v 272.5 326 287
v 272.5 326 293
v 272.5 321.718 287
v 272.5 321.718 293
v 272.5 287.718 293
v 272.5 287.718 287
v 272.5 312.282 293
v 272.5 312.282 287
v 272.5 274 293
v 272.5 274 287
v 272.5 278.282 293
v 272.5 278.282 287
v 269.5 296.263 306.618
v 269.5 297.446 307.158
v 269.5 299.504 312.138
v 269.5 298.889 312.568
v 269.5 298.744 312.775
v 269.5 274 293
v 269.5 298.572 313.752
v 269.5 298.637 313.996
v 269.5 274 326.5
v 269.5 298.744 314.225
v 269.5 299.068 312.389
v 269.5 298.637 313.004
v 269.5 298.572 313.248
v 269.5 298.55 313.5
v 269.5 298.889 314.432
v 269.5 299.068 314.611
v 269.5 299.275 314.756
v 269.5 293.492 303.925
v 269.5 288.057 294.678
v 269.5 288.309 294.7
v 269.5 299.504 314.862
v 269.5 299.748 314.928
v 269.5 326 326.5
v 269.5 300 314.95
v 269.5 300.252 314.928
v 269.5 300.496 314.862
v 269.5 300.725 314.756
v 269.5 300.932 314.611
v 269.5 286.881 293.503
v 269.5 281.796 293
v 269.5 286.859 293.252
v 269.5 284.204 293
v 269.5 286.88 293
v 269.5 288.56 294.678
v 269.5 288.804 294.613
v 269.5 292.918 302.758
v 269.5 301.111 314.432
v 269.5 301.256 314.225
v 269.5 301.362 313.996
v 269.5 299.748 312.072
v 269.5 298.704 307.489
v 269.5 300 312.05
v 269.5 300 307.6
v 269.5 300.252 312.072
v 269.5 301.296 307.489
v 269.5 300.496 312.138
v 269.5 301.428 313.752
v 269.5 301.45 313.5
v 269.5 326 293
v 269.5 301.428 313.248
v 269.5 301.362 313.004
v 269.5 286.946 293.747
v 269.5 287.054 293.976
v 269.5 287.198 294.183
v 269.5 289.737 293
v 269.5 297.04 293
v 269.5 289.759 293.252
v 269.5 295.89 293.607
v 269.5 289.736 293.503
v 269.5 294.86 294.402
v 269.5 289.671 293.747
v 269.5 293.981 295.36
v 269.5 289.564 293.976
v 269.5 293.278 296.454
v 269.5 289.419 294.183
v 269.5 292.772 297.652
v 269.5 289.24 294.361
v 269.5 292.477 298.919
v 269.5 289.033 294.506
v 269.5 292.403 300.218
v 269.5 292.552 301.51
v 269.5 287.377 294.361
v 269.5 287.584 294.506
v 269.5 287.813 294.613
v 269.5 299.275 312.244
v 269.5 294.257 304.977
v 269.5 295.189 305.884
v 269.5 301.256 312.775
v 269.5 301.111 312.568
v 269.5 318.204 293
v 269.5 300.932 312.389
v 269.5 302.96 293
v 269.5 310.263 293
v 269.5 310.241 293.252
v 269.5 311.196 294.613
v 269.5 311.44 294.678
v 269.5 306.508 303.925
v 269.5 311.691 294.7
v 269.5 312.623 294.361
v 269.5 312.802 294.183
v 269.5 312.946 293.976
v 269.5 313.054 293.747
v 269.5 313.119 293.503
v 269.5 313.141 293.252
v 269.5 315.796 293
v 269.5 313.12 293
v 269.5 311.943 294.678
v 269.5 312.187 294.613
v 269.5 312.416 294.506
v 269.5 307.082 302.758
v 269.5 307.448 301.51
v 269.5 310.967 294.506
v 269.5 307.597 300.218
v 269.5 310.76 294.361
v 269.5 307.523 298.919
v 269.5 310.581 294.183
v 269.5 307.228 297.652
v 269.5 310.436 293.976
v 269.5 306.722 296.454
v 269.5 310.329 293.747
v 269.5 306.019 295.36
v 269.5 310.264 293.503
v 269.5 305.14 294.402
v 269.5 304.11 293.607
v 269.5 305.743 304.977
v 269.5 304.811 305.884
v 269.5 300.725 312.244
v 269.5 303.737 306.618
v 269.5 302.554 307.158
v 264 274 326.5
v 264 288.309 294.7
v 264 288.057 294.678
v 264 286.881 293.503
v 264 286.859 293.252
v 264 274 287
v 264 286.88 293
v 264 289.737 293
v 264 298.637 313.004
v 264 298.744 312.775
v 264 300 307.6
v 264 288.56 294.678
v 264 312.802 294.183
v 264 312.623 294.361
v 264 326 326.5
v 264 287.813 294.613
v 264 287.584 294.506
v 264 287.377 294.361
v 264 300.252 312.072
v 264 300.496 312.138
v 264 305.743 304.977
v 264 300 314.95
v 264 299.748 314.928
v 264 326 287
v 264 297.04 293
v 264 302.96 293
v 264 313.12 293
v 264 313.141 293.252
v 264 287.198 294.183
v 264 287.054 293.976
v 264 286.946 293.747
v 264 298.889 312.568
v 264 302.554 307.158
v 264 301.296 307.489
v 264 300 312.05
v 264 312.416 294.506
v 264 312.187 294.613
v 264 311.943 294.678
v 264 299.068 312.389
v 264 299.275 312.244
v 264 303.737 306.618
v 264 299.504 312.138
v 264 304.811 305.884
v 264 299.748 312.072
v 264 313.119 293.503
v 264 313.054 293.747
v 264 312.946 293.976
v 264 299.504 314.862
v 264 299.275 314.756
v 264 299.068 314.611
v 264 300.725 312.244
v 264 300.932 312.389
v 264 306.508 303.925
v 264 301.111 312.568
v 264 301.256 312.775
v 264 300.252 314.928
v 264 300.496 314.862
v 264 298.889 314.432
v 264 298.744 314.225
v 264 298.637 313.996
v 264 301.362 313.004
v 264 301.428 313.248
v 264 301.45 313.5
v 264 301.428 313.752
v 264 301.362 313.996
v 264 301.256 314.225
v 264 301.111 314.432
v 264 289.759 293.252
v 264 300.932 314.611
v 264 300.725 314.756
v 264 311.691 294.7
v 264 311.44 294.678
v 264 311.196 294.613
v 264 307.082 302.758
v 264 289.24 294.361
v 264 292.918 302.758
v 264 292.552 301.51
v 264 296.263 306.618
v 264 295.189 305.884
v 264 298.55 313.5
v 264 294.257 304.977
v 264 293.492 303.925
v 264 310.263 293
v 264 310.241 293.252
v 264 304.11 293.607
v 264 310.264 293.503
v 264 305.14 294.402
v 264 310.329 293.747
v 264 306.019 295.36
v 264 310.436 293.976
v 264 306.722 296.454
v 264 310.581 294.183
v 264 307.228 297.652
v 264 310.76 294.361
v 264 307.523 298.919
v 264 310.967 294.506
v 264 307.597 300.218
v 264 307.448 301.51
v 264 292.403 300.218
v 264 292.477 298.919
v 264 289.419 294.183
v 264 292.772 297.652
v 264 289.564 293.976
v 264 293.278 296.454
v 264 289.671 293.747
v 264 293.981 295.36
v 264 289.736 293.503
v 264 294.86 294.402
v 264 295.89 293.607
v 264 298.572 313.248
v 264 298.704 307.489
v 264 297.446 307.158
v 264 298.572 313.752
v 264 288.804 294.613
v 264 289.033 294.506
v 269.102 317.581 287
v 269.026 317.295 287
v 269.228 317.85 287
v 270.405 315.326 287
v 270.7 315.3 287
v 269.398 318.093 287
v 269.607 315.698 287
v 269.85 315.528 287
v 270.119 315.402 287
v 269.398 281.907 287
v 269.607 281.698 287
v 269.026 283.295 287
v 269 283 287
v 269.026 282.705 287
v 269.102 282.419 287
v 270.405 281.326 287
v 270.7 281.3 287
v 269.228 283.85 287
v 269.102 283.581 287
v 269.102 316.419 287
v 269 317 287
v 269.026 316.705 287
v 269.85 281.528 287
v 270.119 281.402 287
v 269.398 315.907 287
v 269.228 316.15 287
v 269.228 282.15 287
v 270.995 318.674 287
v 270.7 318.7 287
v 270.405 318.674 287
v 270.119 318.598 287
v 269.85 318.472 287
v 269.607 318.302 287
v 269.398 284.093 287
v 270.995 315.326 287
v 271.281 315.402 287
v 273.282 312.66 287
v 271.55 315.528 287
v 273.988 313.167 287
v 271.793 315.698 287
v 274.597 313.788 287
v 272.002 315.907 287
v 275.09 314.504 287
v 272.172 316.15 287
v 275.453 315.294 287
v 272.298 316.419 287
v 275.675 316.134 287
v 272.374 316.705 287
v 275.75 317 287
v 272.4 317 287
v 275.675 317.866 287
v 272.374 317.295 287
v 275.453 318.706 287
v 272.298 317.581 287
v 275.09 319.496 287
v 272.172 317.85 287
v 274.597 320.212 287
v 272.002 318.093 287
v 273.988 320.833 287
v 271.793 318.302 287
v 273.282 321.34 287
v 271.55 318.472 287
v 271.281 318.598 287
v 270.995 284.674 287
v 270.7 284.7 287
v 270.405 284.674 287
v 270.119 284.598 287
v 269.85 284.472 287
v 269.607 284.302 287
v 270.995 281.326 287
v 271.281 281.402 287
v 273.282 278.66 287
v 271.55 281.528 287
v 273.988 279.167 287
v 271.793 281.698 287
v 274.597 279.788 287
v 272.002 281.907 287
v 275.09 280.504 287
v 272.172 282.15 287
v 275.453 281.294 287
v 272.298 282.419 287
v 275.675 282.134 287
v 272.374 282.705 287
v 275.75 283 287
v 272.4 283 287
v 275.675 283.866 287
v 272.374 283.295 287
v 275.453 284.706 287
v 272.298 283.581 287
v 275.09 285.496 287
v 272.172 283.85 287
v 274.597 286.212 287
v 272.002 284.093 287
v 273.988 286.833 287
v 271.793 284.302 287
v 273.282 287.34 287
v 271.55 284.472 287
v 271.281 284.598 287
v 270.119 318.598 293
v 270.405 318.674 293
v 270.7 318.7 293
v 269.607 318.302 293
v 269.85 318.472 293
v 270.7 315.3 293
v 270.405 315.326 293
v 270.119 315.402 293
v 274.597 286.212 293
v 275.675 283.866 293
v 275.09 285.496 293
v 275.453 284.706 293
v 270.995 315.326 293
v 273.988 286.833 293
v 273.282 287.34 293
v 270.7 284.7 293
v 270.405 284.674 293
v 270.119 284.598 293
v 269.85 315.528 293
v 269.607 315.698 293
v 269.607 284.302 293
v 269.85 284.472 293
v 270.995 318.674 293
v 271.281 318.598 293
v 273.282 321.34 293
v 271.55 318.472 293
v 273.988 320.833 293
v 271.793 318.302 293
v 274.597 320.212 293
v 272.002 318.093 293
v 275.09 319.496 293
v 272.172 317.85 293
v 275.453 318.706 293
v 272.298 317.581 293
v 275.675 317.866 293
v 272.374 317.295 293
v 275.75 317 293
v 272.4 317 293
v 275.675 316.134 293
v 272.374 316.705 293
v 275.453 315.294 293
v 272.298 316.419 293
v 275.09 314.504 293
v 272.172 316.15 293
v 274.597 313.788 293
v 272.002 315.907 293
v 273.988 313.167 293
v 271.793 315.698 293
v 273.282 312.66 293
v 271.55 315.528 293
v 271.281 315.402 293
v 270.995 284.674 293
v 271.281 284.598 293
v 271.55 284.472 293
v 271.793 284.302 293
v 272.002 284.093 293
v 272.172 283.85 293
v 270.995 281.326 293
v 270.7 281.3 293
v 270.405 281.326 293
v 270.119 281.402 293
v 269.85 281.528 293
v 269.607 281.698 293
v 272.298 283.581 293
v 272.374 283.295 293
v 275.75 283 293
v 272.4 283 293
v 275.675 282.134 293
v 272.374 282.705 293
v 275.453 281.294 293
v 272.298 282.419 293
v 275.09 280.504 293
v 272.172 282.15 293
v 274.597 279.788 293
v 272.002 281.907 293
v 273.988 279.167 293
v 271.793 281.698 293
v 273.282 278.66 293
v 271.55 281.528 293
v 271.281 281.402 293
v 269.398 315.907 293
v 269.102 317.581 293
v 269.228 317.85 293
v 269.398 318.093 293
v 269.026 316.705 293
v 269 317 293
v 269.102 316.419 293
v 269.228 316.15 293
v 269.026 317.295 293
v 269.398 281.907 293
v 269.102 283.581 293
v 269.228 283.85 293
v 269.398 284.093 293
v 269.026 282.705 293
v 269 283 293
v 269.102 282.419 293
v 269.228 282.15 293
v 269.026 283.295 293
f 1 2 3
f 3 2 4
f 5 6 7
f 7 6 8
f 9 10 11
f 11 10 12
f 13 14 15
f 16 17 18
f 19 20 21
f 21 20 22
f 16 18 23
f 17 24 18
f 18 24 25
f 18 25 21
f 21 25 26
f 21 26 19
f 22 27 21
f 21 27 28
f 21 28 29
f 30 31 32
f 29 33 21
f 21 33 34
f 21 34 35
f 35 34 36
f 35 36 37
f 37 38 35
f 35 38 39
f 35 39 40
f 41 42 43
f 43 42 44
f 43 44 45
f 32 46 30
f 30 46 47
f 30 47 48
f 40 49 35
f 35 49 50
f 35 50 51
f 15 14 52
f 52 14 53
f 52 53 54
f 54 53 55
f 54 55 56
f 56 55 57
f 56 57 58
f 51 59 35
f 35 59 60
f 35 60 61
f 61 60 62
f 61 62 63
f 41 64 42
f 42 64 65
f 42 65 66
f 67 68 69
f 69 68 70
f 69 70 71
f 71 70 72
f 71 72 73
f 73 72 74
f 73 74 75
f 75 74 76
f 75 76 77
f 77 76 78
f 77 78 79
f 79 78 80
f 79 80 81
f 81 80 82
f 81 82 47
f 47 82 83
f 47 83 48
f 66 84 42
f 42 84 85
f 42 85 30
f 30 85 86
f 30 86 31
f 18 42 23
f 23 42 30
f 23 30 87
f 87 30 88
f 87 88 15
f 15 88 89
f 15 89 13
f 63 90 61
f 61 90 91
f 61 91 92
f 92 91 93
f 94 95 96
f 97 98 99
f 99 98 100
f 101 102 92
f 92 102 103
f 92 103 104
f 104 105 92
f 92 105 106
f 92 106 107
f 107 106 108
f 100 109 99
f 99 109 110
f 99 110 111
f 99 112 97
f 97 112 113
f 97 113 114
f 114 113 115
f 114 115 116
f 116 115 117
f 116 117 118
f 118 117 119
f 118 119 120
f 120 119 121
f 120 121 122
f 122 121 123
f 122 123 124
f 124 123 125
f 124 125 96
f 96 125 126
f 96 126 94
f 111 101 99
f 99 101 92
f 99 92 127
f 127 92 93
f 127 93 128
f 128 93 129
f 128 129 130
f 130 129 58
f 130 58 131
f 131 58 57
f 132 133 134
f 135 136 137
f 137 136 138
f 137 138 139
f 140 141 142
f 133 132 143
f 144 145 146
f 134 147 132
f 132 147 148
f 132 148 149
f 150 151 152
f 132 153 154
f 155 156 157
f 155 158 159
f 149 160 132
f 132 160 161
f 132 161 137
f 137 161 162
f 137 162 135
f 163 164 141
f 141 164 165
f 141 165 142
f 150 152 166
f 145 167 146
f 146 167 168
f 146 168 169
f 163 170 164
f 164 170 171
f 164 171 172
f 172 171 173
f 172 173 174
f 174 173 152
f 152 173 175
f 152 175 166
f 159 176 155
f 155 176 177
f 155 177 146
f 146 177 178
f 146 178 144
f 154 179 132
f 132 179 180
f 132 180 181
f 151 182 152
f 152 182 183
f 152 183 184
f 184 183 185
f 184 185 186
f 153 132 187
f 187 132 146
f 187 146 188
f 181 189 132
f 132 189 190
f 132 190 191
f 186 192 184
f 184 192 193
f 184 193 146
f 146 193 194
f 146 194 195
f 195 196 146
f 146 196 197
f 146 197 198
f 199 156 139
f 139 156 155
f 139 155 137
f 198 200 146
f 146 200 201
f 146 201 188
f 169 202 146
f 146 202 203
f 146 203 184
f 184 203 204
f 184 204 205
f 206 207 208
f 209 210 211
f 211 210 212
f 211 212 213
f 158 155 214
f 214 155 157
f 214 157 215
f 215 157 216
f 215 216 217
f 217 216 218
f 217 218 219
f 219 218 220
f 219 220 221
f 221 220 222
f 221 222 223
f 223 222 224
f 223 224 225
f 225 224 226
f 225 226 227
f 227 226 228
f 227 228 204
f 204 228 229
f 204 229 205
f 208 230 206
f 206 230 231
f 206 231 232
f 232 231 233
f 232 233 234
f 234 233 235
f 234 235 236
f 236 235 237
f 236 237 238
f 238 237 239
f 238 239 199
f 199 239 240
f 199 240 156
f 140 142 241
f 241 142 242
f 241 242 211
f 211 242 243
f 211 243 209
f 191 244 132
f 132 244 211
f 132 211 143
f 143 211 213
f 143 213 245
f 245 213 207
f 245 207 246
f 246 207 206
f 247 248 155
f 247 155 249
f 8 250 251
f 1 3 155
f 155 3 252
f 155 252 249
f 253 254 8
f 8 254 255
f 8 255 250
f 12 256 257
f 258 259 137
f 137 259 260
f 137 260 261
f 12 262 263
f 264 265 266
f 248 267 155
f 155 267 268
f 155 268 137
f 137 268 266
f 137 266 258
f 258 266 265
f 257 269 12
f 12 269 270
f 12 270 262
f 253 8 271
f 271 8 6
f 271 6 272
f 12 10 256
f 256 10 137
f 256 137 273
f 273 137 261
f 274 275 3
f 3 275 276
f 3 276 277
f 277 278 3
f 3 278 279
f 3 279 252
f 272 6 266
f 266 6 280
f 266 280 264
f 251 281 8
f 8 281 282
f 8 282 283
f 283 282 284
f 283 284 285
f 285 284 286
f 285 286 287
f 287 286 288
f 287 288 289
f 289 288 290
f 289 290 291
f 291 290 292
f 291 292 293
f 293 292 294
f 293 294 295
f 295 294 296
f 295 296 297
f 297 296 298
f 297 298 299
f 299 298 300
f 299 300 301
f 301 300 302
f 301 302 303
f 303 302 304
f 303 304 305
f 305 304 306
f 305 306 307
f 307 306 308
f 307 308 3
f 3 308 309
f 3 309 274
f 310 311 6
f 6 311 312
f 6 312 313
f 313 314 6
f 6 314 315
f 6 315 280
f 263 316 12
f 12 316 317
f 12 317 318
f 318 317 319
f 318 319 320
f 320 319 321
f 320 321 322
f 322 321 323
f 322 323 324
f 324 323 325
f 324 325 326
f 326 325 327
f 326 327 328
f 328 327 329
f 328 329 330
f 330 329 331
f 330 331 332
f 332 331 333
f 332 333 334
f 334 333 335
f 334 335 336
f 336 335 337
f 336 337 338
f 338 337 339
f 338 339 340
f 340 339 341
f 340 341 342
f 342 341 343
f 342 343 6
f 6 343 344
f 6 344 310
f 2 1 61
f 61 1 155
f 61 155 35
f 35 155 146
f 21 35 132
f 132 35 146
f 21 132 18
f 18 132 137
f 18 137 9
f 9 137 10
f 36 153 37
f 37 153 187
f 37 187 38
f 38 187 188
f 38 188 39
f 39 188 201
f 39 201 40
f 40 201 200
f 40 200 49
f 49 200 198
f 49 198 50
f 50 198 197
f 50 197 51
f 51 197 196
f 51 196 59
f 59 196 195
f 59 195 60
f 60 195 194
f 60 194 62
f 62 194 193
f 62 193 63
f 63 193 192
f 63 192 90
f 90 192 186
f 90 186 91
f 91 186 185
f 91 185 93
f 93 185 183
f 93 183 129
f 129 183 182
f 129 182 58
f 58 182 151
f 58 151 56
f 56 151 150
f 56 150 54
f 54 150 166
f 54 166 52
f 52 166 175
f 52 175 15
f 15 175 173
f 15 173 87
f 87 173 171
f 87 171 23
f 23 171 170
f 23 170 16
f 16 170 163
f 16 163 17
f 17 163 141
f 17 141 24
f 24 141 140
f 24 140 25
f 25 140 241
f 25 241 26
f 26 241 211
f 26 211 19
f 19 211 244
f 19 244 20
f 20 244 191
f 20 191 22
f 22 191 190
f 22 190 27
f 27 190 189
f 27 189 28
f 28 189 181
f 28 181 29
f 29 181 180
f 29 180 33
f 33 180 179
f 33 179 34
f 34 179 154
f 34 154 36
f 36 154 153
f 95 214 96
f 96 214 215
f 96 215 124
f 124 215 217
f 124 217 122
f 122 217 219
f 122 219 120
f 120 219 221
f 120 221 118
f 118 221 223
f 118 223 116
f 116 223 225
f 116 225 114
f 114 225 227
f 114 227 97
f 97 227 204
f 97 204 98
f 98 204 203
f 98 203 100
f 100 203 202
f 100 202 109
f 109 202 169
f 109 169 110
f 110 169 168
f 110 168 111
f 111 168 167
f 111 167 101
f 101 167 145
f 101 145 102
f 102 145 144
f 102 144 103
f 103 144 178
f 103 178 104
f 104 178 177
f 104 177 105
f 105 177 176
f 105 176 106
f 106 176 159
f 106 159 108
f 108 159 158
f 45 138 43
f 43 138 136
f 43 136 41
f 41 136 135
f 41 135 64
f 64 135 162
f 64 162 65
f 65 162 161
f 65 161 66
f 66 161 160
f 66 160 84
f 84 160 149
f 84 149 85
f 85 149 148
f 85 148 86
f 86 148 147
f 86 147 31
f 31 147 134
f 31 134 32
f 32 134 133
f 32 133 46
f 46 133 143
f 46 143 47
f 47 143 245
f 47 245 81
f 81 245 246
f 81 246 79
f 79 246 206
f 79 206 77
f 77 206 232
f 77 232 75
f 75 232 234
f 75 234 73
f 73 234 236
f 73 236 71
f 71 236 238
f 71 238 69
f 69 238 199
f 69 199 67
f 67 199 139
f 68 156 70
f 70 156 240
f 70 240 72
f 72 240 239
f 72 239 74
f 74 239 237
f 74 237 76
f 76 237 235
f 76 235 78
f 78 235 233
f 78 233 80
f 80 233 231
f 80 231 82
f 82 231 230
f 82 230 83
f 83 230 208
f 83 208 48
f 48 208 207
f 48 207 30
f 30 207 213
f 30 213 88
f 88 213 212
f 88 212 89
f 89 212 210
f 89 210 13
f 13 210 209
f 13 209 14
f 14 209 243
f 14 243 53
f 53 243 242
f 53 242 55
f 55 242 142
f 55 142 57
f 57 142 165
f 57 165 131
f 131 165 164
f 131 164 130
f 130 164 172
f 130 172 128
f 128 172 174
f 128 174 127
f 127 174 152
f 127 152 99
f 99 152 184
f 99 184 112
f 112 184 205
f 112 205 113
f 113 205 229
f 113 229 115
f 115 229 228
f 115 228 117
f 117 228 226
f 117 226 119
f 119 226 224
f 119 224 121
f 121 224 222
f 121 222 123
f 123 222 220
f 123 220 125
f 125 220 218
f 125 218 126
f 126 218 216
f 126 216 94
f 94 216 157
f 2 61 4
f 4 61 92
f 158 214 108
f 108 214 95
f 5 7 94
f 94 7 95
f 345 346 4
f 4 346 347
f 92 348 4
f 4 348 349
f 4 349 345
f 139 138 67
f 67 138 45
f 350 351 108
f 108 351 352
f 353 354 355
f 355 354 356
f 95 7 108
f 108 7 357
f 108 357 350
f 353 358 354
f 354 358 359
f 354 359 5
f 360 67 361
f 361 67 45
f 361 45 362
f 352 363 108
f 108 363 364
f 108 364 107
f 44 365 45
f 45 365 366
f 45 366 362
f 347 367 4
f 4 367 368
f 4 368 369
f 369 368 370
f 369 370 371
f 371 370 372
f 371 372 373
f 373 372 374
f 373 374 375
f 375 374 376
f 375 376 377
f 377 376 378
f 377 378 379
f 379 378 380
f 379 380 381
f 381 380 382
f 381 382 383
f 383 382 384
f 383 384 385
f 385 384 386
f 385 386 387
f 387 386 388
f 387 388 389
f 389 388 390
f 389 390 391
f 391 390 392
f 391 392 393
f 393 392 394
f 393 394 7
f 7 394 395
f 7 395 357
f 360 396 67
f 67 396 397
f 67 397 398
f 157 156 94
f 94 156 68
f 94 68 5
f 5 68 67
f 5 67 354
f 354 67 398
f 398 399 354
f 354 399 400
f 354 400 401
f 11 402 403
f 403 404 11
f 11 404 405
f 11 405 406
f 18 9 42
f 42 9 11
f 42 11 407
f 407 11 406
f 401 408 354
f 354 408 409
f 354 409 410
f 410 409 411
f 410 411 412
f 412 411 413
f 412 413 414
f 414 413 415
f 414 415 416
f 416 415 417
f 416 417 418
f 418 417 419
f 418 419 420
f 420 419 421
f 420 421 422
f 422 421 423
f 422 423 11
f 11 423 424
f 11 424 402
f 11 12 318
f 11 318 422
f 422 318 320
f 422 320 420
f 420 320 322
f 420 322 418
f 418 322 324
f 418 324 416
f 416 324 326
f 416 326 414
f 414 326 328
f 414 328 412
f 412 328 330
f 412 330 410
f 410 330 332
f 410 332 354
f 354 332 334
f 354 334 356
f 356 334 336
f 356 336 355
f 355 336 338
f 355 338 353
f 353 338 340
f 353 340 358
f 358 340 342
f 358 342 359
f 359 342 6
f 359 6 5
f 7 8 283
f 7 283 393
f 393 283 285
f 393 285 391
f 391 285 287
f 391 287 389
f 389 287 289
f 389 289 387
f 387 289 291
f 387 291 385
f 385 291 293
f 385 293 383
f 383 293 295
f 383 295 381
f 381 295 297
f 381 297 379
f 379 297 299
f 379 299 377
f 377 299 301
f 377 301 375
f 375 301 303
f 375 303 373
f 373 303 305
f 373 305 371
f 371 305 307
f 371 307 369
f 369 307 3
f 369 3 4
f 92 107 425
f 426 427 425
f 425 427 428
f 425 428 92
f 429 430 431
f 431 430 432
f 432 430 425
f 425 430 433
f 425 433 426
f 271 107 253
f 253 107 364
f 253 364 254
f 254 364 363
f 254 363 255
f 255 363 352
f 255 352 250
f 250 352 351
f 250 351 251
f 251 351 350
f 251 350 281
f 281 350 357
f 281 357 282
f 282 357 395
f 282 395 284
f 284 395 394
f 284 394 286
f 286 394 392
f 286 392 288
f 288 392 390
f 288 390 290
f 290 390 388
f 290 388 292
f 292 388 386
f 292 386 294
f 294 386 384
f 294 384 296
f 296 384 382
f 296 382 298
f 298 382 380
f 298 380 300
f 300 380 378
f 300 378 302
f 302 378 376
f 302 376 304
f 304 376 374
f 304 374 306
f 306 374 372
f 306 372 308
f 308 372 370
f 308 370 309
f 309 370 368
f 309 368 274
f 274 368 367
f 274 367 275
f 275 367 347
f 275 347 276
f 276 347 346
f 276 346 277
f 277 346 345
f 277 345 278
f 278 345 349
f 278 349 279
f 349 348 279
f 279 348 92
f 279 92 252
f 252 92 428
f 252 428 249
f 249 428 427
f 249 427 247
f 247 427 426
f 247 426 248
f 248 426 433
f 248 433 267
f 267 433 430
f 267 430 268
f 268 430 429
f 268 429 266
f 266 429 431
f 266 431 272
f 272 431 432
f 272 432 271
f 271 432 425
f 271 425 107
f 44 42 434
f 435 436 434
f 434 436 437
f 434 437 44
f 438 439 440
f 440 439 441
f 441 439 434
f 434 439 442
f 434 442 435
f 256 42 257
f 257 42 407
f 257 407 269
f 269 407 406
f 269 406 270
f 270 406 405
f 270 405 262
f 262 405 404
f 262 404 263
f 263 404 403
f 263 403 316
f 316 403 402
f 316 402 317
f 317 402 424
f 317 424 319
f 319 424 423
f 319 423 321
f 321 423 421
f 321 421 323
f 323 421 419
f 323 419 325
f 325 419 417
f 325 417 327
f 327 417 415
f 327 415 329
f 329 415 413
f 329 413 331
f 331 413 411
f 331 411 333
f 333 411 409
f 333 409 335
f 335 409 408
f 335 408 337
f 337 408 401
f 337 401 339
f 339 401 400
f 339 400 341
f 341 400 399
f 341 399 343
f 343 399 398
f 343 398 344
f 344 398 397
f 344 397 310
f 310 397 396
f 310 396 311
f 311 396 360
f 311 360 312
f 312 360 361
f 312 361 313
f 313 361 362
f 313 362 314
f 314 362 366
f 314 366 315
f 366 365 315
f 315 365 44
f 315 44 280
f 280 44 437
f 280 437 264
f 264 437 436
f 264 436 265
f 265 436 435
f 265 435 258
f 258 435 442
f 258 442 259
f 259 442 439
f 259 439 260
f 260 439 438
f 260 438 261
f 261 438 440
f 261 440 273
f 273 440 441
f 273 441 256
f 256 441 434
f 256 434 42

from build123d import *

# Parameters (mm, degrees)
SKETCH1_W           = 39.5
SKETCH1_H           = 52
SKETCH1_R           = 1.45
BOSS_EXTRUDE1_DEPTH = 5.5
SKETCH2_R           = 7.6
CUT_EXTRUDE1_DEPTH  = 5.5
SKETCH3_W           = 8.5
SKETCH3_H           = 52
BOSS_EXTRUDE2_DEPTH = 6
SKETCH4_R           = 5.05
SKETCH4_R_2         = 1.7
BOSS_EXTRUDE3_DEPTH = 6
SKETCH5_R           = 5.05
SKETCH5_R_2         = 1.7
BOSS_EXTRUDE4_DEPTH = 6
SKETCH6_R           = 1.7
CUT_EXTRUDE2_DEPTH  = 6


with BuildPart() as part:
    # Sketch1 → Boss-Extrude1 (new body)
    with BuildSketch(Plane(origin=(264, 0, 0), x_dir=(0, 0, -1), z_dir=(1, 0, 0))):
        with Locations((-306.75, 300)):
            Rectangle(SKETCH1_W, SKETCH1_H)
        with Locations((-313.5, 300)):
            Circle(SKETCH1_R, mode=Mode.SUBTRACT)
        with Locations((-293.25, 311.691342951)):
            Circle(SKETCH1_R, mode=Mode.SUBTRACT)
        with Locations((-293.25, 288.308657049)):
            Circle(SKETCH1_R, mode=Mode.SUBTRACT)
    extrude(amount=BOSS_EXTRUDE1_DEPTH)

    # Sketch2 → Cut-Extrude1 (cut)
    with BuildSketch(Plane(origin=(264, 0, 0), x_dir=(0, 0, -1), z_dir=(1, 0, 0))):
        with Locations((-300, 300)):
            Circle(SKETCH2_R)
    extrude(amount=CUT_EXTRUDE1_DEPTH, mode=Mode.SUBTRACT)

    # Sketch3 → Boss-Extrude2 (add)
    with BuildSketch(Plane.XY.offset(287)):
        with Locations((268.25, 300)):
            Rectangle(SKETCH3_W, SKETCH3_H)
    extrude(amount=BOSS_EXTRUDE2_DEPTH)

    # Sketch4 → Boss-Extrude3 (add)
    with BuildSketch(Plane.XY.offset(287)):
        with Locations((270.7, 283)):
            Circle(SKETCH4_R)
        with Locations((270.7, 283)):
            Circle(SKETCH4_R_2, mode=Mode.SUBTRACT)
    extrude(amount=BOSS_EXTRUDE3_DEPTH)

    # Sketch5 → Boss-Extrude4 (add)
    with BuildSketch(Plane.XY.offset(287)):
        with Locations((270.7, 317)):
            Circle(SKETCH5_R)
        with Locations((270.7, 317)):
            Circle(SKETCH5_R_2, mode=Mode.SUBTRACT)
    extrude(amount=BOSS_EXTRUDE4_DEPTH)

    # Sketch6 → Cut-Extrude2 (cut)
    with BuildSketch(Plane.XY.offset(287)):
        with Locations(Location((270.7, 283, 0), (0, 0, 225.099127844))):
            Circle(SKETCH6_R)
        with Locations(Location((270.7, 317, 0), (0, 0, 225.099127844))):
            Circle(SKETCH6_R)
    extrude(amount=CUT_EXTRUDE2_DEPTH, mode=Mode.SUBTRACT)


solid = part.part
